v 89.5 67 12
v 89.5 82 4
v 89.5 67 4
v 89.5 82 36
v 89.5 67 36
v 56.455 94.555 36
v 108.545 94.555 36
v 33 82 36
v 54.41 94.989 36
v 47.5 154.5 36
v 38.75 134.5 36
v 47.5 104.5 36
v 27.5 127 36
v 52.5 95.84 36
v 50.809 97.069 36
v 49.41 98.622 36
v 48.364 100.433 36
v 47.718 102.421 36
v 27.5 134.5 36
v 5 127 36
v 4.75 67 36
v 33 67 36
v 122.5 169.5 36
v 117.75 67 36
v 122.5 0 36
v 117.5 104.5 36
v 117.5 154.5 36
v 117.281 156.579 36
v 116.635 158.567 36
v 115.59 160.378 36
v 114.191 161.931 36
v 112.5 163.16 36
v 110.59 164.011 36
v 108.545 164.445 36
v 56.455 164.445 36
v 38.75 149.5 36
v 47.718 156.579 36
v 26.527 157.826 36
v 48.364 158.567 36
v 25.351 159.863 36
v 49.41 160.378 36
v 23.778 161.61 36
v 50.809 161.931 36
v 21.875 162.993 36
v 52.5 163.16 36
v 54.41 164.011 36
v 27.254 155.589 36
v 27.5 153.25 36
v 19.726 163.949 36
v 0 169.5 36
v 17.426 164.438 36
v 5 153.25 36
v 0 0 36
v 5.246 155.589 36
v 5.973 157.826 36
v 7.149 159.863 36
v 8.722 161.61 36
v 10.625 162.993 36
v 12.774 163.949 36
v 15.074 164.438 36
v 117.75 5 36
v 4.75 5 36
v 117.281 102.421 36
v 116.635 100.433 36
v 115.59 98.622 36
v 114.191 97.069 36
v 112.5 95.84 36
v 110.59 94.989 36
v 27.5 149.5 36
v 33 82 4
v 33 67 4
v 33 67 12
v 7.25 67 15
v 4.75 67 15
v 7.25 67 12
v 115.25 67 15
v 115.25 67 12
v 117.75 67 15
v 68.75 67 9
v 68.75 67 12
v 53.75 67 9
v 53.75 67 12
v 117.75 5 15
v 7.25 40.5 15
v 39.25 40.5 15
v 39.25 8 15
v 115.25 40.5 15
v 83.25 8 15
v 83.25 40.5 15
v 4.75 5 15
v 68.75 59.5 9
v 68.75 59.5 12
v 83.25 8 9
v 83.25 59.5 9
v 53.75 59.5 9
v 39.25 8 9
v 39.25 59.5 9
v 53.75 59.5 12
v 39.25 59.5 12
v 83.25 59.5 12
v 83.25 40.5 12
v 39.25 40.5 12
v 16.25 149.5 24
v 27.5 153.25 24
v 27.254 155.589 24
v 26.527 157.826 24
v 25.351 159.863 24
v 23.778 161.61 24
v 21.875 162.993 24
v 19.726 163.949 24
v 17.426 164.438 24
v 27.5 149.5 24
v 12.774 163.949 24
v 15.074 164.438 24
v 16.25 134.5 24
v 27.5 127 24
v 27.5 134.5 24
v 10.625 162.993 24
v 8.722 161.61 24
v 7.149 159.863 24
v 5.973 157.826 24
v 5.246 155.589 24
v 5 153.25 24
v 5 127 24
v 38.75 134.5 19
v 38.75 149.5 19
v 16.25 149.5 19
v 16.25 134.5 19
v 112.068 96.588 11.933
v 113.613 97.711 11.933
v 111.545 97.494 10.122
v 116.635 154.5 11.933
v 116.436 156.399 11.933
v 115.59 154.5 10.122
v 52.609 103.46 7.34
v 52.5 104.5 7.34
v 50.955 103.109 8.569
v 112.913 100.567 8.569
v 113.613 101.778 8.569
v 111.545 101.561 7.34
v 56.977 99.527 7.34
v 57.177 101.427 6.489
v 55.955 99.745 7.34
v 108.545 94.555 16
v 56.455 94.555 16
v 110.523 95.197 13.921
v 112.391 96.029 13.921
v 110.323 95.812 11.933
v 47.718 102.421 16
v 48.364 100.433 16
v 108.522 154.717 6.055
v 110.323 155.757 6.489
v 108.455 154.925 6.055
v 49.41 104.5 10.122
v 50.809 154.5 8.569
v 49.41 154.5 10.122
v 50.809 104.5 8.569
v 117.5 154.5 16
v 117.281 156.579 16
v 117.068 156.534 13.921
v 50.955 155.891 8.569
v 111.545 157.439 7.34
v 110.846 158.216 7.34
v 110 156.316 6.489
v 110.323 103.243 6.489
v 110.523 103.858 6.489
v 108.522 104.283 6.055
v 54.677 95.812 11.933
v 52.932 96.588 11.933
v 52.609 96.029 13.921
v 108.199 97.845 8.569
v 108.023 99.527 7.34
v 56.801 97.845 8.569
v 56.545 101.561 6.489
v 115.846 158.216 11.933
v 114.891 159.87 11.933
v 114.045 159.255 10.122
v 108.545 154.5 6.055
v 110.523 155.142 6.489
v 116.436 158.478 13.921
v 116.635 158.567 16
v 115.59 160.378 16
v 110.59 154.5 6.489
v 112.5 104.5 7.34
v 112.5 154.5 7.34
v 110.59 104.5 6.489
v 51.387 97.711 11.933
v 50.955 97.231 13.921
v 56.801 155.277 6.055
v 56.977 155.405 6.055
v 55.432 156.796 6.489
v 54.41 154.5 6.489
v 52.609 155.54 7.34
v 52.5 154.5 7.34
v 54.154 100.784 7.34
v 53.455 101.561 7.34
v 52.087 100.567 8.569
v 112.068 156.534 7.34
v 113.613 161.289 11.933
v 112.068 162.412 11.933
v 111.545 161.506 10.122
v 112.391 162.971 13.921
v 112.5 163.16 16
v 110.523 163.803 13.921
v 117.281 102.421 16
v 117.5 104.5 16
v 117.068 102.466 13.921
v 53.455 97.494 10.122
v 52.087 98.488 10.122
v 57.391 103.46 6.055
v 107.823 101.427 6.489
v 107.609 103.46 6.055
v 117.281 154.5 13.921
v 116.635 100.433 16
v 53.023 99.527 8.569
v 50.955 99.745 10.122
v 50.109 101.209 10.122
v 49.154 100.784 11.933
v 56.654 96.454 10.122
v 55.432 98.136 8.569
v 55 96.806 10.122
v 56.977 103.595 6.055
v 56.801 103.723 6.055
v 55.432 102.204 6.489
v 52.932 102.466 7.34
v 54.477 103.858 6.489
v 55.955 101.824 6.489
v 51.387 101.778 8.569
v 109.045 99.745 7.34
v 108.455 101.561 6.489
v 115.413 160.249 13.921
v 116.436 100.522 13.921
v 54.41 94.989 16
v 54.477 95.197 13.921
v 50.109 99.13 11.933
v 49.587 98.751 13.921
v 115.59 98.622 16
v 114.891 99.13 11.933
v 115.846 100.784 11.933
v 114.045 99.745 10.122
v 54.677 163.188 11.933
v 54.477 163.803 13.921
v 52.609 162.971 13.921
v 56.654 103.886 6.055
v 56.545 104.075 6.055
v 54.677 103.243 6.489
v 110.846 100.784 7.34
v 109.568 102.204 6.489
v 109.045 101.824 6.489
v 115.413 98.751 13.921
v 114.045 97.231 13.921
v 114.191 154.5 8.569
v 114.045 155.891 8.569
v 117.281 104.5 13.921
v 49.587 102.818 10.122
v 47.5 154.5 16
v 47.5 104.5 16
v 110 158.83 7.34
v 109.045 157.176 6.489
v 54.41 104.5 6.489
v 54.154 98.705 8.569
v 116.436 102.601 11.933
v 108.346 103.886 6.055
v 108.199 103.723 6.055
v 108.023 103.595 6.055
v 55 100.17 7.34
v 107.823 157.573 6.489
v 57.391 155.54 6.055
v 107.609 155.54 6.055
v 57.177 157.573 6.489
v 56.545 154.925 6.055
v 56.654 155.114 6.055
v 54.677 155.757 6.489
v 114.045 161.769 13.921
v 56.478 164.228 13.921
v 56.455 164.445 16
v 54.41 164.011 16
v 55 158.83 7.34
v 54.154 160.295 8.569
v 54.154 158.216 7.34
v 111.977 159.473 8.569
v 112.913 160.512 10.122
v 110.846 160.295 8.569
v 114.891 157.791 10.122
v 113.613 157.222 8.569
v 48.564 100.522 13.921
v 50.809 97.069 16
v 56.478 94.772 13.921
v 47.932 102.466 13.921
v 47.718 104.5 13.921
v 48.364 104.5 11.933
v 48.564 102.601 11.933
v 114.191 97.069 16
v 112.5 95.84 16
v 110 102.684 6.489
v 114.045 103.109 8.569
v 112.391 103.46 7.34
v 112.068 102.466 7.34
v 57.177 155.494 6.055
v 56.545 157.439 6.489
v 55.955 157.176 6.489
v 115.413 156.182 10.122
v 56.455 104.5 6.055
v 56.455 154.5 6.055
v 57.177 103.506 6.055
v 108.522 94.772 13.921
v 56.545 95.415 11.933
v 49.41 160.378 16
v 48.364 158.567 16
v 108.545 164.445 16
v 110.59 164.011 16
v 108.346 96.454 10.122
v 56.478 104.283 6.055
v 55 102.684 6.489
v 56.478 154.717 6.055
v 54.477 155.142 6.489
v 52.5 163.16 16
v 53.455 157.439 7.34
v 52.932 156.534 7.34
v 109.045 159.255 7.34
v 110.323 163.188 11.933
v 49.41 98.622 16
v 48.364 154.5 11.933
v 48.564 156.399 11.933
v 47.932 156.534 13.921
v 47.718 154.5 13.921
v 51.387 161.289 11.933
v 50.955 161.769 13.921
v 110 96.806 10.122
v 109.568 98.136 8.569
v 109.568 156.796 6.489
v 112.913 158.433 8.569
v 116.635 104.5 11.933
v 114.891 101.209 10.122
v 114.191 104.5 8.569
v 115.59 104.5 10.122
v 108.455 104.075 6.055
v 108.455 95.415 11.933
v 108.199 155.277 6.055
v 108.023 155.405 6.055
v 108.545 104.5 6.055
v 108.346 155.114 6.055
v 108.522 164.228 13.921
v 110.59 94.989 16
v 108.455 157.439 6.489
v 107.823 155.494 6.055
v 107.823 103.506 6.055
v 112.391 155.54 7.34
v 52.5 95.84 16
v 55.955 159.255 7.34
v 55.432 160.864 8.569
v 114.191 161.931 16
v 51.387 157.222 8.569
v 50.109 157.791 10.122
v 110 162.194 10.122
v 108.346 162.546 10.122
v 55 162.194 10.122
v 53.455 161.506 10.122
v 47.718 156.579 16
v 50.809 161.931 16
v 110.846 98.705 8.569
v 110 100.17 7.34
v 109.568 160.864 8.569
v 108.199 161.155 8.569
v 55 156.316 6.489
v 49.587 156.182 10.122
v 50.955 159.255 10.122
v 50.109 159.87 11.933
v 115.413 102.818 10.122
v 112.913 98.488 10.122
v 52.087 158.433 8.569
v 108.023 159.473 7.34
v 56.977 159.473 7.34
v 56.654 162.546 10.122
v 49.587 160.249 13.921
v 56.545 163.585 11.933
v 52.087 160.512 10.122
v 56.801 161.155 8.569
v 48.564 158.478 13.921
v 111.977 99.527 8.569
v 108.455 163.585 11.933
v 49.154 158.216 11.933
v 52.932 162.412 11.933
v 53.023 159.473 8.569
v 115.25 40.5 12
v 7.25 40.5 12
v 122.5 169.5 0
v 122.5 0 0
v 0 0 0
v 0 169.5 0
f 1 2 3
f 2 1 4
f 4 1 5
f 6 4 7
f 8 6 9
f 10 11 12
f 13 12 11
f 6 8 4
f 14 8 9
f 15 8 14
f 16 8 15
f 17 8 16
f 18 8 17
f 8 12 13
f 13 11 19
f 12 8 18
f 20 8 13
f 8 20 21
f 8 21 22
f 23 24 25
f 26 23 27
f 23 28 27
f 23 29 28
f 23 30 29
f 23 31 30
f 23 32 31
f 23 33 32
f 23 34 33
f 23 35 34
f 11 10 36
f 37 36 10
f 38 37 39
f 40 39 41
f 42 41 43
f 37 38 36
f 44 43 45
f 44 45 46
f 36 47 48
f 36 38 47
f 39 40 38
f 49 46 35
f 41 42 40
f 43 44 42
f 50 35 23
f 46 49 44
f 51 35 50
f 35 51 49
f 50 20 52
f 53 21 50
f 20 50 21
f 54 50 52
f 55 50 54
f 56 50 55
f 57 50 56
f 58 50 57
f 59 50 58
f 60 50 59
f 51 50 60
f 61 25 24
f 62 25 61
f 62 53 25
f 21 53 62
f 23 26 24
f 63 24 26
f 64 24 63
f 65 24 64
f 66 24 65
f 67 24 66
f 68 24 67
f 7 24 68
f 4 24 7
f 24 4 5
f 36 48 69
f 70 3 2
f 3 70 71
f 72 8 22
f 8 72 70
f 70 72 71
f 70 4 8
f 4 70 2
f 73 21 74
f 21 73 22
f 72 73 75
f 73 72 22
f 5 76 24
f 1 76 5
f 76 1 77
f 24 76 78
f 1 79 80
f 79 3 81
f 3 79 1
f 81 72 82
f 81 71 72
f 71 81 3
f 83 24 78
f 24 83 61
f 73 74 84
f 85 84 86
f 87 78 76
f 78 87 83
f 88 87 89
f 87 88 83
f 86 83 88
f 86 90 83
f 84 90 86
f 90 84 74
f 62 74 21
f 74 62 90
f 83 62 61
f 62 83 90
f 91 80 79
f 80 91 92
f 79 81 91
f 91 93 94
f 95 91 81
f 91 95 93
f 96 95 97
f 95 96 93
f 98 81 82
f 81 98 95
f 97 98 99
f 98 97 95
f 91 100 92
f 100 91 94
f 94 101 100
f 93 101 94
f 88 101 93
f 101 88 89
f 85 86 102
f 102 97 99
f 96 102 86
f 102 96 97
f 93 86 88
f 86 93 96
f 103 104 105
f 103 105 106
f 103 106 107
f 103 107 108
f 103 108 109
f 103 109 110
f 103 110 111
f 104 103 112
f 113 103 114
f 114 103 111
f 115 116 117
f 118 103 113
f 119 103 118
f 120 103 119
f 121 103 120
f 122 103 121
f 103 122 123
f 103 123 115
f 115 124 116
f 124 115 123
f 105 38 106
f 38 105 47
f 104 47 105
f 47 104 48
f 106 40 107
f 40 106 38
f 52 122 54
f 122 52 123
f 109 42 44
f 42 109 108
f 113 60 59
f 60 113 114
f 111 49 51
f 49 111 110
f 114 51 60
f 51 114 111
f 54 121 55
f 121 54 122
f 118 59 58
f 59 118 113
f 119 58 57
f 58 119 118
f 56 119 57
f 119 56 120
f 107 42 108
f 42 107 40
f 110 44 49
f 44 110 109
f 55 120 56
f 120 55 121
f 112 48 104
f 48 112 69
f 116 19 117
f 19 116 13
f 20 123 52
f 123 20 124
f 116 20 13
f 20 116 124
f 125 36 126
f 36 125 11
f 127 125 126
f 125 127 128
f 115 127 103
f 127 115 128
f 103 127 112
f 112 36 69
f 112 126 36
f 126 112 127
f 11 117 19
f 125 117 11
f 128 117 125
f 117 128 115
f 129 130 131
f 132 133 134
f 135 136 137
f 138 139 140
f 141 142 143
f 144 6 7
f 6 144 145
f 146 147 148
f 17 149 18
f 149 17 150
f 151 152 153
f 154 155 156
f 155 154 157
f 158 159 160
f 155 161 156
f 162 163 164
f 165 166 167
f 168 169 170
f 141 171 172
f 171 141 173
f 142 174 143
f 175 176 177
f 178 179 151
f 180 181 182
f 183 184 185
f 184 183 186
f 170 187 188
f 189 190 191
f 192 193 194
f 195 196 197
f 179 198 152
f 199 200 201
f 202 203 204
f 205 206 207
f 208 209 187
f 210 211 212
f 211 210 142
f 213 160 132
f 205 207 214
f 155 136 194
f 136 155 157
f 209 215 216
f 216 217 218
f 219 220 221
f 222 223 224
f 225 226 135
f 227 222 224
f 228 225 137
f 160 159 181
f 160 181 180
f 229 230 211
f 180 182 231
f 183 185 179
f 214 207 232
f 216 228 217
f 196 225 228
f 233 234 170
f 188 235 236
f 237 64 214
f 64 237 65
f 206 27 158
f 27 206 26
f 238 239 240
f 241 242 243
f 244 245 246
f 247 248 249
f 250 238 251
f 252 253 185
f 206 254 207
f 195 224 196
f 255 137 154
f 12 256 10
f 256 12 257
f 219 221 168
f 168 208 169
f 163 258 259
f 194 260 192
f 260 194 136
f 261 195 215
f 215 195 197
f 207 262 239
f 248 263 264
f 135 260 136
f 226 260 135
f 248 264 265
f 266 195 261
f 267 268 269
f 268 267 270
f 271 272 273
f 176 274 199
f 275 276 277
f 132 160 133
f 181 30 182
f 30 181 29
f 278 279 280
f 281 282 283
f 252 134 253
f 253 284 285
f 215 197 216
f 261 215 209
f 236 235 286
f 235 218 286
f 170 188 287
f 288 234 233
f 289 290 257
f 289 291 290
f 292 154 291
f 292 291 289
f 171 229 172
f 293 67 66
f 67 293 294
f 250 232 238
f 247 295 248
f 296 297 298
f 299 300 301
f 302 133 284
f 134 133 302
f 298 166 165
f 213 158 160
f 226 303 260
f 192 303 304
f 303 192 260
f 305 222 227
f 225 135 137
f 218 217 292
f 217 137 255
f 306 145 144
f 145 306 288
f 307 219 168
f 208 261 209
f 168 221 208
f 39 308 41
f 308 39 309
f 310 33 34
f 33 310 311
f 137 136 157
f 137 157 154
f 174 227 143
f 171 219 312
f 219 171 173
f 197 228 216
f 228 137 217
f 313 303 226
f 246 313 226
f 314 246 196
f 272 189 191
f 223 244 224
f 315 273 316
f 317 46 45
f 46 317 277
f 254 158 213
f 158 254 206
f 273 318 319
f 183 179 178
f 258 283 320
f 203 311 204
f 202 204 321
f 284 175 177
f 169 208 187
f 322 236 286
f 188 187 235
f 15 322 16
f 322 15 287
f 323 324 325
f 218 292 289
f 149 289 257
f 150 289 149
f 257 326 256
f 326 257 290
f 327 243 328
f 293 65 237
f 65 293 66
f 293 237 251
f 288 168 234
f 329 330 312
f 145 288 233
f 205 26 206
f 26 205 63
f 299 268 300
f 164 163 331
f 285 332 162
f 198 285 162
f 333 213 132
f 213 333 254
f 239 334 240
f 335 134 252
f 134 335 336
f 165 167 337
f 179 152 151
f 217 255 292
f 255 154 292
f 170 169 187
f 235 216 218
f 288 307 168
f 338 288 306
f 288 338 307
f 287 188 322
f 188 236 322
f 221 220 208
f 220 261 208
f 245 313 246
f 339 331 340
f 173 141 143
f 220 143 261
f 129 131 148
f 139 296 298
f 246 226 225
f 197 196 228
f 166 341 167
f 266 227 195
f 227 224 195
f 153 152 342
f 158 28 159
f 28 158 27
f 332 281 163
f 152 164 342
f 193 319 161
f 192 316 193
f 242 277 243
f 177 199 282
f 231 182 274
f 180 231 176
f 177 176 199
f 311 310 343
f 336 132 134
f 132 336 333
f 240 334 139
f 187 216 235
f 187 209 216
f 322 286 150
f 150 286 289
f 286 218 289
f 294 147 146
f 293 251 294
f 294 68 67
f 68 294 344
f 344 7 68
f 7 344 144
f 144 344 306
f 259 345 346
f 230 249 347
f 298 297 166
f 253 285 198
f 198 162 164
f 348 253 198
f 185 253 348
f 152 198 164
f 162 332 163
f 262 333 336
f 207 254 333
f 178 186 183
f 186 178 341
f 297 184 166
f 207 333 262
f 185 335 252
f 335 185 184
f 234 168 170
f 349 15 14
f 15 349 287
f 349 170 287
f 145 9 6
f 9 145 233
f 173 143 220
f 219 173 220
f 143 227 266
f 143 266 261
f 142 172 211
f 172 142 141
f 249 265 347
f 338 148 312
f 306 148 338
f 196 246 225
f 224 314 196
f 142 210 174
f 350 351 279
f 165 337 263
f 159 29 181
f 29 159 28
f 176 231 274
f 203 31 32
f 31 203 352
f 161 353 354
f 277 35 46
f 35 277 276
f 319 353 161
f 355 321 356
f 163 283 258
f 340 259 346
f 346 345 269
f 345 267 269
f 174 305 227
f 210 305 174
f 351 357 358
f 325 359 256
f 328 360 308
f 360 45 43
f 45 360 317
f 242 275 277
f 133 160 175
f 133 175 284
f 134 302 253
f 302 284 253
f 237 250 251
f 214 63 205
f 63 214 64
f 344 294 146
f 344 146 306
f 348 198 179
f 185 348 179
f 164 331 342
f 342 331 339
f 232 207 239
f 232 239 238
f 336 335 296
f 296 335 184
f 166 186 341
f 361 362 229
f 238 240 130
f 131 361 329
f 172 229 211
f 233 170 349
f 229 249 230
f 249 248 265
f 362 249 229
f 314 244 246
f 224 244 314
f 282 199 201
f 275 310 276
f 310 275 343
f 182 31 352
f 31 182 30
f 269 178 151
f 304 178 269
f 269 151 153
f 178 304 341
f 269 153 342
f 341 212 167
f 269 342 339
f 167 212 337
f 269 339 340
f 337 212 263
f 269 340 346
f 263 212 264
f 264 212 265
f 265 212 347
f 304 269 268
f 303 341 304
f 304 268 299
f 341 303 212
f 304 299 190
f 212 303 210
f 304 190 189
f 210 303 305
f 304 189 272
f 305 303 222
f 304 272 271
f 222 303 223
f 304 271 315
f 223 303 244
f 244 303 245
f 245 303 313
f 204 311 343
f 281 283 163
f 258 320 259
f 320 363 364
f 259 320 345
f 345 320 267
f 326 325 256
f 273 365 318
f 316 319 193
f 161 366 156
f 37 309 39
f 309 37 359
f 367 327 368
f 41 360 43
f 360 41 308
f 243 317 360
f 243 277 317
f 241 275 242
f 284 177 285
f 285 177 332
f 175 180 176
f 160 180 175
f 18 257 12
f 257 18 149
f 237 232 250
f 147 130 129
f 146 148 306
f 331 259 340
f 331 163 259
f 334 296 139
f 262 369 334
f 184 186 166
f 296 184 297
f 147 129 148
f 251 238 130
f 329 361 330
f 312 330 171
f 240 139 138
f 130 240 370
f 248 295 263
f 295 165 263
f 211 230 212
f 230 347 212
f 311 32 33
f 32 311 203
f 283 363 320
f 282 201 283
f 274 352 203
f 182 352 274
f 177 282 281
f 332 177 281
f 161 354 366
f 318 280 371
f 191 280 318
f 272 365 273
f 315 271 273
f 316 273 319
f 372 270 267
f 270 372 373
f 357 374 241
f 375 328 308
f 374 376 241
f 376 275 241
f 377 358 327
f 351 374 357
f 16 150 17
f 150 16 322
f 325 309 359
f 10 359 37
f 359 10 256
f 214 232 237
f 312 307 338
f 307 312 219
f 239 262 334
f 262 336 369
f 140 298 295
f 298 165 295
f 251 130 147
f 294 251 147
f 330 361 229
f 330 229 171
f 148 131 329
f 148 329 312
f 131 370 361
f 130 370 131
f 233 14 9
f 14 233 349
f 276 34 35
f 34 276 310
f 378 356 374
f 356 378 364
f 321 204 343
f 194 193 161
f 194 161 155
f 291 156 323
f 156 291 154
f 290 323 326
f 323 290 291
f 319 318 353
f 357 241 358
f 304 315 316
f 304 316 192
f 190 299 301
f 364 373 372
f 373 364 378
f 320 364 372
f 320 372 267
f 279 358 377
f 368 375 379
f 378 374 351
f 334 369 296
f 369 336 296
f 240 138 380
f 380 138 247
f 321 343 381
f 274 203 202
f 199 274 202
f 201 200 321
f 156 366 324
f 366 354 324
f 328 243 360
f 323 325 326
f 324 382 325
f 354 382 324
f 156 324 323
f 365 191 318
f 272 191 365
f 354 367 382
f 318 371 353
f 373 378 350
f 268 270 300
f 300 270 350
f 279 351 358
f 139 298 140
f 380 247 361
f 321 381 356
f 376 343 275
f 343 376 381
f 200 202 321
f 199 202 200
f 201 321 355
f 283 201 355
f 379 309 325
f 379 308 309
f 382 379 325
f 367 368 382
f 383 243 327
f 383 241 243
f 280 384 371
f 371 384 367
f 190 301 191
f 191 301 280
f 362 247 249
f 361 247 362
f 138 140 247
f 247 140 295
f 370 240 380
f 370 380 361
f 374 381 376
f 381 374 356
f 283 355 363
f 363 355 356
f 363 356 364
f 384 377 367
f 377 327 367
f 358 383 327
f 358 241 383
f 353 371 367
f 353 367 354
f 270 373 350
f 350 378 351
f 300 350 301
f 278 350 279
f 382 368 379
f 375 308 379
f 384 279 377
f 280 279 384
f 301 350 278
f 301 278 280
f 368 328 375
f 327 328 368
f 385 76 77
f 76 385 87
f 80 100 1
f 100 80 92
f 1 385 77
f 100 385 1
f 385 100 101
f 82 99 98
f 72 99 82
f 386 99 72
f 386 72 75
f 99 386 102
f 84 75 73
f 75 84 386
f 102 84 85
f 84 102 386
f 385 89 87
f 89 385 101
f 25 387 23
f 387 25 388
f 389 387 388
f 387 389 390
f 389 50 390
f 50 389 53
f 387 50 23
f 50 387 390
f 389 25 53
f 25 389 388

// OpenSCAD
// file: ../roundedcube.scad
// Aquired from https://danielupshaw.com/openscad-rounded-corners/
// License unknown

// Higher definition curves
$fs = 0.01;

module roundedcube(size = [1, 1, 1], center = false, radius = 0.5, apply_to = "all") {
	// If single value, convert to [x, y, z] vector
	size = (size[0] == undef) ? [size, size, size] : size;

	translate_min = radius;
	translate_xmax = size[0] - radius;
	translate_ymax = size[1] - radius;
	translate_zmax = size[2] - radius;

	diameter = radius * 2;

	module build_point(type = "sphere", rotate = [0, 0, 0]) {
		if (type == "sphere") {
			sphere(r = radius);
		} else if (type == "cylinder") {
			rotate(a = rotate)
			cylinder(h = diameter, r = radius, center = true);
		}
	}

	obj_translate = (center == false) ?
		[0, 0, 0] : [
			-(size[0] / 2),
			-(size[1] / 2),
			-(size[2] / 2)
		];

	translate(v = obj_translate) {
		hull() {
			for (translate_x = [translate_min, translate_xmax]) {
				x_at = (translate_x == translate_min) ? "min" : "max";
				for (translate_y = [translate_min, translate_ymax]) {
					y_at = (translate_y == translate_min) ? "min" : "max";
					for (translate_z = [translate_min, translate_zmax]) {
						z_at = (translate_z == translate_min) ? "min" : "max";

						translate(v = [translate_x, translate_y, translate_z])
						if (
							(apply_to == "all") ||
							(apply_to == "xmin" && x_at == "min") || (apply_to == "xmax" && x_at == "max") ||
							(apply_to == "ymin" && y_at == "min") || (apply_to == "ymax" && y_at == "max") ||
							(apply_to == "zmin" && z_at == "min") || (apply_to == "zmax" && z_at == "max")
						) {
							build_point("sphere");
						} else {
							rotate =
								(apply_to == "xmin" || apply_to == "xmax" || apply_to == "x") ? [0, 90, 0] : (
								(apply_to == "ymin" || apply_to == "ymax" || apply_to == "y") ? [90, 90, 0] :
								[0, 0, 0]
							);
							build_point("cylinder", rotate);
						}
					}
				}
			}
		}
	}
}
// main file
use <../roundedcube.scad>

TILE_HEIGHT = 3;

BOX_WIDTH = 122.5;
BOX_DEPTH = 169.5;
BOX_HEIGHT = 36;

BOOK_HEIGHT = 3;
WALL_WIDTH = 5;
SLOT_WIDTH = 15;

function tile_h(count) = count * TILE_HEIGHT;
area_edge = BOX_WIDTH - WALL_WIDTH;

INFLUENCE_LENGTH = 70;
INFLUENCE_WIDTH = 70;
INFLUENCE_HEIGHT = 30;

BRIBERY_LENGTH = 37.5;
BRIBERY_WIDTH = 22.5;
BRIBERY_RADIUS = BRIBERY_WIDTH / 2;
BRIBERY_COUNT = 4;
BRIBERY_HEIGHT = BRIBERY_COUNT * TILE_HEIGHT;

DIRECTION_LENGTH = 108;
DIRECTION_WIDTH = 26.5;
DIRECTION_HEIGHT = TILE_HEIGHT;

FIRST_PLAYER_LENGTH = 51.5;
FIRST_PLAYER_WIDTH = 44;
FIRST_PLAYER_HEIGHT = TILE_HEIGHT;

CARD_WIDTH = 62;
CARD_LENGTH = 113;
CARD_HEIGHT = 21;

module cards() {
    offset_x = (BOX_WIDTH - CARD_LENGTH) / 2;
    offset_y = WALL_WIDTH;
    offset_z = BOX_HEIGHT - CARD_HEIGHT;
    
    height_offset = 5 + TILE_HEIGHT * 2;
    
    slot_length = CARD_LENGTH / 2;
    
    translate([offset_x, offset_y, offset_z])
    union() {
        translate([slot_length / 2, CARD_WIDTH, - height_offset])
        cube([slot_length, SLOT_WIDTH, CARD_HEIGHT + height_offset]);
        
        cube([CARD_LENGTH, CARD_WIDTH, CARD_HEIGHT]);
    }
}

module finger_slot() {    
    length = BOX_WIDTH - WALL_WIDTH * 4;
    
    offset_x = WALL_WIDTH + (BRIBERY_WIDTH / 2);
    offset_y = BOX_DEPTH - WALL_WIDTH - BRIBERY_LENGTH + (SLOT_WIDTH / 2);
    offset_z = BOX_HEIGHT - BRIBERY_HEIGHT - 5;
    
    translate([offset_x, offset_y, offset_z])
    cube([SLOT_WIDTH * 1.5, SLOT_WIDTH, BRIBERY_HEIGHT + 5]);
}

module influence_tokens() {
    offset_x = BOX_WIDTH - WALL_WIDTH - INFLUENCE_WIDTH;
    offset_y = BOX_DEPTH - WALL_WIDTH - INFLUENCE_LENGTH;
    offset_z = BOX_HEIGHT - INFLUENCE_HEIGHT;
    
    translate([offset_x, offset_y, offset_z])
    roundedcube([INFLUENCE_WIDTH, INFLUENCE_LENGTH, INFLUENCE_HEIGHT * 2], false, 10);
}

module first_player_tile() {
    offset_x = (BOX_WIDTH - FIRST_PLAYER_WIDTH) / 2;
    offset_y = WALL_WIDTH + CARD_WIDTH - SLOT_WIDTH / 2 - FIRST_PLAYER_LENGTH;
    offset_z = BOX_HEIGHT - CARD_HEIGHT - DIRECTION_HEIGHT - FIRST_PLAYER_HEIGHT;
    
    translate([offset_x, offset_y, offset_z])
    union() {
        translate([FIRST_PLAYER_WIDTH / 2 - SLOT_WIDTH / 2, FIRST_PLAYER_LENGTH, 0])
        cube([SLOT_WIDTH, SLOT_WIDTH / 2, FIRST_PLAYER_HEIGHT + DIRECTION_HEIGHT]);
        cube([FIRST_PLAYER_WIDTH, FIRST_PLAYER_LENGTH, FIRST_PLAYER_HEIGHT + DIRECTION_HEIGHT]);
    }
}

module resolution_direction_tile() {
    offset_x = (BOX_WIDTH - DIRECTION_LENGTH) / 2;
    offset_y = WALL_WIDTH + CARD_WIDTH - DIRECTION_WIDTH;
    offset_z = BOX_HEIGHT - CARD_HEIGHT - DIRECTION_HEIGHT;
    
    translate([offset_x, offset_y, offset_z])
    cube([DIRECTION_LENGTH, DIRECTION_WIDTH, DIRECTION_HEIGHT]);
}

module bribery_tokens() {
    cube_length = BRIBERY_LENGTH - BRIBERY_RADIUS;
    offset_x = WALL_WIDTH;
    offset_y = BOX_DEPTH - WALL_WIDTH - BRIBERY_LENGTH;
    offset_z = BOX_HEIGHT - BRIBERY_HEIGHT;
    
    translate([offset_x, offset_y, offset_z])
    union() {
        translate([BRIBERY_RADIUS, cube_length, 0])
        cylinder(h = BRIBERY_HEIGHT, d = BRIBERY_WIDTH);
        cube([BRIBERY_WIDTH, cube_length, BRIBERY_HEIGHT]);
    }
}

module base_block() {
    cube([BOX_WIDTH, BOX_DEPTH, BOX_HEIGHT]);
}

difference() {
    base_block();
    union() {
        cards();
        finger_slot();
        influence_tokens();
        first_player_tile();
        resolution_direction_tile();
        bribery_tokens();
    }
}
